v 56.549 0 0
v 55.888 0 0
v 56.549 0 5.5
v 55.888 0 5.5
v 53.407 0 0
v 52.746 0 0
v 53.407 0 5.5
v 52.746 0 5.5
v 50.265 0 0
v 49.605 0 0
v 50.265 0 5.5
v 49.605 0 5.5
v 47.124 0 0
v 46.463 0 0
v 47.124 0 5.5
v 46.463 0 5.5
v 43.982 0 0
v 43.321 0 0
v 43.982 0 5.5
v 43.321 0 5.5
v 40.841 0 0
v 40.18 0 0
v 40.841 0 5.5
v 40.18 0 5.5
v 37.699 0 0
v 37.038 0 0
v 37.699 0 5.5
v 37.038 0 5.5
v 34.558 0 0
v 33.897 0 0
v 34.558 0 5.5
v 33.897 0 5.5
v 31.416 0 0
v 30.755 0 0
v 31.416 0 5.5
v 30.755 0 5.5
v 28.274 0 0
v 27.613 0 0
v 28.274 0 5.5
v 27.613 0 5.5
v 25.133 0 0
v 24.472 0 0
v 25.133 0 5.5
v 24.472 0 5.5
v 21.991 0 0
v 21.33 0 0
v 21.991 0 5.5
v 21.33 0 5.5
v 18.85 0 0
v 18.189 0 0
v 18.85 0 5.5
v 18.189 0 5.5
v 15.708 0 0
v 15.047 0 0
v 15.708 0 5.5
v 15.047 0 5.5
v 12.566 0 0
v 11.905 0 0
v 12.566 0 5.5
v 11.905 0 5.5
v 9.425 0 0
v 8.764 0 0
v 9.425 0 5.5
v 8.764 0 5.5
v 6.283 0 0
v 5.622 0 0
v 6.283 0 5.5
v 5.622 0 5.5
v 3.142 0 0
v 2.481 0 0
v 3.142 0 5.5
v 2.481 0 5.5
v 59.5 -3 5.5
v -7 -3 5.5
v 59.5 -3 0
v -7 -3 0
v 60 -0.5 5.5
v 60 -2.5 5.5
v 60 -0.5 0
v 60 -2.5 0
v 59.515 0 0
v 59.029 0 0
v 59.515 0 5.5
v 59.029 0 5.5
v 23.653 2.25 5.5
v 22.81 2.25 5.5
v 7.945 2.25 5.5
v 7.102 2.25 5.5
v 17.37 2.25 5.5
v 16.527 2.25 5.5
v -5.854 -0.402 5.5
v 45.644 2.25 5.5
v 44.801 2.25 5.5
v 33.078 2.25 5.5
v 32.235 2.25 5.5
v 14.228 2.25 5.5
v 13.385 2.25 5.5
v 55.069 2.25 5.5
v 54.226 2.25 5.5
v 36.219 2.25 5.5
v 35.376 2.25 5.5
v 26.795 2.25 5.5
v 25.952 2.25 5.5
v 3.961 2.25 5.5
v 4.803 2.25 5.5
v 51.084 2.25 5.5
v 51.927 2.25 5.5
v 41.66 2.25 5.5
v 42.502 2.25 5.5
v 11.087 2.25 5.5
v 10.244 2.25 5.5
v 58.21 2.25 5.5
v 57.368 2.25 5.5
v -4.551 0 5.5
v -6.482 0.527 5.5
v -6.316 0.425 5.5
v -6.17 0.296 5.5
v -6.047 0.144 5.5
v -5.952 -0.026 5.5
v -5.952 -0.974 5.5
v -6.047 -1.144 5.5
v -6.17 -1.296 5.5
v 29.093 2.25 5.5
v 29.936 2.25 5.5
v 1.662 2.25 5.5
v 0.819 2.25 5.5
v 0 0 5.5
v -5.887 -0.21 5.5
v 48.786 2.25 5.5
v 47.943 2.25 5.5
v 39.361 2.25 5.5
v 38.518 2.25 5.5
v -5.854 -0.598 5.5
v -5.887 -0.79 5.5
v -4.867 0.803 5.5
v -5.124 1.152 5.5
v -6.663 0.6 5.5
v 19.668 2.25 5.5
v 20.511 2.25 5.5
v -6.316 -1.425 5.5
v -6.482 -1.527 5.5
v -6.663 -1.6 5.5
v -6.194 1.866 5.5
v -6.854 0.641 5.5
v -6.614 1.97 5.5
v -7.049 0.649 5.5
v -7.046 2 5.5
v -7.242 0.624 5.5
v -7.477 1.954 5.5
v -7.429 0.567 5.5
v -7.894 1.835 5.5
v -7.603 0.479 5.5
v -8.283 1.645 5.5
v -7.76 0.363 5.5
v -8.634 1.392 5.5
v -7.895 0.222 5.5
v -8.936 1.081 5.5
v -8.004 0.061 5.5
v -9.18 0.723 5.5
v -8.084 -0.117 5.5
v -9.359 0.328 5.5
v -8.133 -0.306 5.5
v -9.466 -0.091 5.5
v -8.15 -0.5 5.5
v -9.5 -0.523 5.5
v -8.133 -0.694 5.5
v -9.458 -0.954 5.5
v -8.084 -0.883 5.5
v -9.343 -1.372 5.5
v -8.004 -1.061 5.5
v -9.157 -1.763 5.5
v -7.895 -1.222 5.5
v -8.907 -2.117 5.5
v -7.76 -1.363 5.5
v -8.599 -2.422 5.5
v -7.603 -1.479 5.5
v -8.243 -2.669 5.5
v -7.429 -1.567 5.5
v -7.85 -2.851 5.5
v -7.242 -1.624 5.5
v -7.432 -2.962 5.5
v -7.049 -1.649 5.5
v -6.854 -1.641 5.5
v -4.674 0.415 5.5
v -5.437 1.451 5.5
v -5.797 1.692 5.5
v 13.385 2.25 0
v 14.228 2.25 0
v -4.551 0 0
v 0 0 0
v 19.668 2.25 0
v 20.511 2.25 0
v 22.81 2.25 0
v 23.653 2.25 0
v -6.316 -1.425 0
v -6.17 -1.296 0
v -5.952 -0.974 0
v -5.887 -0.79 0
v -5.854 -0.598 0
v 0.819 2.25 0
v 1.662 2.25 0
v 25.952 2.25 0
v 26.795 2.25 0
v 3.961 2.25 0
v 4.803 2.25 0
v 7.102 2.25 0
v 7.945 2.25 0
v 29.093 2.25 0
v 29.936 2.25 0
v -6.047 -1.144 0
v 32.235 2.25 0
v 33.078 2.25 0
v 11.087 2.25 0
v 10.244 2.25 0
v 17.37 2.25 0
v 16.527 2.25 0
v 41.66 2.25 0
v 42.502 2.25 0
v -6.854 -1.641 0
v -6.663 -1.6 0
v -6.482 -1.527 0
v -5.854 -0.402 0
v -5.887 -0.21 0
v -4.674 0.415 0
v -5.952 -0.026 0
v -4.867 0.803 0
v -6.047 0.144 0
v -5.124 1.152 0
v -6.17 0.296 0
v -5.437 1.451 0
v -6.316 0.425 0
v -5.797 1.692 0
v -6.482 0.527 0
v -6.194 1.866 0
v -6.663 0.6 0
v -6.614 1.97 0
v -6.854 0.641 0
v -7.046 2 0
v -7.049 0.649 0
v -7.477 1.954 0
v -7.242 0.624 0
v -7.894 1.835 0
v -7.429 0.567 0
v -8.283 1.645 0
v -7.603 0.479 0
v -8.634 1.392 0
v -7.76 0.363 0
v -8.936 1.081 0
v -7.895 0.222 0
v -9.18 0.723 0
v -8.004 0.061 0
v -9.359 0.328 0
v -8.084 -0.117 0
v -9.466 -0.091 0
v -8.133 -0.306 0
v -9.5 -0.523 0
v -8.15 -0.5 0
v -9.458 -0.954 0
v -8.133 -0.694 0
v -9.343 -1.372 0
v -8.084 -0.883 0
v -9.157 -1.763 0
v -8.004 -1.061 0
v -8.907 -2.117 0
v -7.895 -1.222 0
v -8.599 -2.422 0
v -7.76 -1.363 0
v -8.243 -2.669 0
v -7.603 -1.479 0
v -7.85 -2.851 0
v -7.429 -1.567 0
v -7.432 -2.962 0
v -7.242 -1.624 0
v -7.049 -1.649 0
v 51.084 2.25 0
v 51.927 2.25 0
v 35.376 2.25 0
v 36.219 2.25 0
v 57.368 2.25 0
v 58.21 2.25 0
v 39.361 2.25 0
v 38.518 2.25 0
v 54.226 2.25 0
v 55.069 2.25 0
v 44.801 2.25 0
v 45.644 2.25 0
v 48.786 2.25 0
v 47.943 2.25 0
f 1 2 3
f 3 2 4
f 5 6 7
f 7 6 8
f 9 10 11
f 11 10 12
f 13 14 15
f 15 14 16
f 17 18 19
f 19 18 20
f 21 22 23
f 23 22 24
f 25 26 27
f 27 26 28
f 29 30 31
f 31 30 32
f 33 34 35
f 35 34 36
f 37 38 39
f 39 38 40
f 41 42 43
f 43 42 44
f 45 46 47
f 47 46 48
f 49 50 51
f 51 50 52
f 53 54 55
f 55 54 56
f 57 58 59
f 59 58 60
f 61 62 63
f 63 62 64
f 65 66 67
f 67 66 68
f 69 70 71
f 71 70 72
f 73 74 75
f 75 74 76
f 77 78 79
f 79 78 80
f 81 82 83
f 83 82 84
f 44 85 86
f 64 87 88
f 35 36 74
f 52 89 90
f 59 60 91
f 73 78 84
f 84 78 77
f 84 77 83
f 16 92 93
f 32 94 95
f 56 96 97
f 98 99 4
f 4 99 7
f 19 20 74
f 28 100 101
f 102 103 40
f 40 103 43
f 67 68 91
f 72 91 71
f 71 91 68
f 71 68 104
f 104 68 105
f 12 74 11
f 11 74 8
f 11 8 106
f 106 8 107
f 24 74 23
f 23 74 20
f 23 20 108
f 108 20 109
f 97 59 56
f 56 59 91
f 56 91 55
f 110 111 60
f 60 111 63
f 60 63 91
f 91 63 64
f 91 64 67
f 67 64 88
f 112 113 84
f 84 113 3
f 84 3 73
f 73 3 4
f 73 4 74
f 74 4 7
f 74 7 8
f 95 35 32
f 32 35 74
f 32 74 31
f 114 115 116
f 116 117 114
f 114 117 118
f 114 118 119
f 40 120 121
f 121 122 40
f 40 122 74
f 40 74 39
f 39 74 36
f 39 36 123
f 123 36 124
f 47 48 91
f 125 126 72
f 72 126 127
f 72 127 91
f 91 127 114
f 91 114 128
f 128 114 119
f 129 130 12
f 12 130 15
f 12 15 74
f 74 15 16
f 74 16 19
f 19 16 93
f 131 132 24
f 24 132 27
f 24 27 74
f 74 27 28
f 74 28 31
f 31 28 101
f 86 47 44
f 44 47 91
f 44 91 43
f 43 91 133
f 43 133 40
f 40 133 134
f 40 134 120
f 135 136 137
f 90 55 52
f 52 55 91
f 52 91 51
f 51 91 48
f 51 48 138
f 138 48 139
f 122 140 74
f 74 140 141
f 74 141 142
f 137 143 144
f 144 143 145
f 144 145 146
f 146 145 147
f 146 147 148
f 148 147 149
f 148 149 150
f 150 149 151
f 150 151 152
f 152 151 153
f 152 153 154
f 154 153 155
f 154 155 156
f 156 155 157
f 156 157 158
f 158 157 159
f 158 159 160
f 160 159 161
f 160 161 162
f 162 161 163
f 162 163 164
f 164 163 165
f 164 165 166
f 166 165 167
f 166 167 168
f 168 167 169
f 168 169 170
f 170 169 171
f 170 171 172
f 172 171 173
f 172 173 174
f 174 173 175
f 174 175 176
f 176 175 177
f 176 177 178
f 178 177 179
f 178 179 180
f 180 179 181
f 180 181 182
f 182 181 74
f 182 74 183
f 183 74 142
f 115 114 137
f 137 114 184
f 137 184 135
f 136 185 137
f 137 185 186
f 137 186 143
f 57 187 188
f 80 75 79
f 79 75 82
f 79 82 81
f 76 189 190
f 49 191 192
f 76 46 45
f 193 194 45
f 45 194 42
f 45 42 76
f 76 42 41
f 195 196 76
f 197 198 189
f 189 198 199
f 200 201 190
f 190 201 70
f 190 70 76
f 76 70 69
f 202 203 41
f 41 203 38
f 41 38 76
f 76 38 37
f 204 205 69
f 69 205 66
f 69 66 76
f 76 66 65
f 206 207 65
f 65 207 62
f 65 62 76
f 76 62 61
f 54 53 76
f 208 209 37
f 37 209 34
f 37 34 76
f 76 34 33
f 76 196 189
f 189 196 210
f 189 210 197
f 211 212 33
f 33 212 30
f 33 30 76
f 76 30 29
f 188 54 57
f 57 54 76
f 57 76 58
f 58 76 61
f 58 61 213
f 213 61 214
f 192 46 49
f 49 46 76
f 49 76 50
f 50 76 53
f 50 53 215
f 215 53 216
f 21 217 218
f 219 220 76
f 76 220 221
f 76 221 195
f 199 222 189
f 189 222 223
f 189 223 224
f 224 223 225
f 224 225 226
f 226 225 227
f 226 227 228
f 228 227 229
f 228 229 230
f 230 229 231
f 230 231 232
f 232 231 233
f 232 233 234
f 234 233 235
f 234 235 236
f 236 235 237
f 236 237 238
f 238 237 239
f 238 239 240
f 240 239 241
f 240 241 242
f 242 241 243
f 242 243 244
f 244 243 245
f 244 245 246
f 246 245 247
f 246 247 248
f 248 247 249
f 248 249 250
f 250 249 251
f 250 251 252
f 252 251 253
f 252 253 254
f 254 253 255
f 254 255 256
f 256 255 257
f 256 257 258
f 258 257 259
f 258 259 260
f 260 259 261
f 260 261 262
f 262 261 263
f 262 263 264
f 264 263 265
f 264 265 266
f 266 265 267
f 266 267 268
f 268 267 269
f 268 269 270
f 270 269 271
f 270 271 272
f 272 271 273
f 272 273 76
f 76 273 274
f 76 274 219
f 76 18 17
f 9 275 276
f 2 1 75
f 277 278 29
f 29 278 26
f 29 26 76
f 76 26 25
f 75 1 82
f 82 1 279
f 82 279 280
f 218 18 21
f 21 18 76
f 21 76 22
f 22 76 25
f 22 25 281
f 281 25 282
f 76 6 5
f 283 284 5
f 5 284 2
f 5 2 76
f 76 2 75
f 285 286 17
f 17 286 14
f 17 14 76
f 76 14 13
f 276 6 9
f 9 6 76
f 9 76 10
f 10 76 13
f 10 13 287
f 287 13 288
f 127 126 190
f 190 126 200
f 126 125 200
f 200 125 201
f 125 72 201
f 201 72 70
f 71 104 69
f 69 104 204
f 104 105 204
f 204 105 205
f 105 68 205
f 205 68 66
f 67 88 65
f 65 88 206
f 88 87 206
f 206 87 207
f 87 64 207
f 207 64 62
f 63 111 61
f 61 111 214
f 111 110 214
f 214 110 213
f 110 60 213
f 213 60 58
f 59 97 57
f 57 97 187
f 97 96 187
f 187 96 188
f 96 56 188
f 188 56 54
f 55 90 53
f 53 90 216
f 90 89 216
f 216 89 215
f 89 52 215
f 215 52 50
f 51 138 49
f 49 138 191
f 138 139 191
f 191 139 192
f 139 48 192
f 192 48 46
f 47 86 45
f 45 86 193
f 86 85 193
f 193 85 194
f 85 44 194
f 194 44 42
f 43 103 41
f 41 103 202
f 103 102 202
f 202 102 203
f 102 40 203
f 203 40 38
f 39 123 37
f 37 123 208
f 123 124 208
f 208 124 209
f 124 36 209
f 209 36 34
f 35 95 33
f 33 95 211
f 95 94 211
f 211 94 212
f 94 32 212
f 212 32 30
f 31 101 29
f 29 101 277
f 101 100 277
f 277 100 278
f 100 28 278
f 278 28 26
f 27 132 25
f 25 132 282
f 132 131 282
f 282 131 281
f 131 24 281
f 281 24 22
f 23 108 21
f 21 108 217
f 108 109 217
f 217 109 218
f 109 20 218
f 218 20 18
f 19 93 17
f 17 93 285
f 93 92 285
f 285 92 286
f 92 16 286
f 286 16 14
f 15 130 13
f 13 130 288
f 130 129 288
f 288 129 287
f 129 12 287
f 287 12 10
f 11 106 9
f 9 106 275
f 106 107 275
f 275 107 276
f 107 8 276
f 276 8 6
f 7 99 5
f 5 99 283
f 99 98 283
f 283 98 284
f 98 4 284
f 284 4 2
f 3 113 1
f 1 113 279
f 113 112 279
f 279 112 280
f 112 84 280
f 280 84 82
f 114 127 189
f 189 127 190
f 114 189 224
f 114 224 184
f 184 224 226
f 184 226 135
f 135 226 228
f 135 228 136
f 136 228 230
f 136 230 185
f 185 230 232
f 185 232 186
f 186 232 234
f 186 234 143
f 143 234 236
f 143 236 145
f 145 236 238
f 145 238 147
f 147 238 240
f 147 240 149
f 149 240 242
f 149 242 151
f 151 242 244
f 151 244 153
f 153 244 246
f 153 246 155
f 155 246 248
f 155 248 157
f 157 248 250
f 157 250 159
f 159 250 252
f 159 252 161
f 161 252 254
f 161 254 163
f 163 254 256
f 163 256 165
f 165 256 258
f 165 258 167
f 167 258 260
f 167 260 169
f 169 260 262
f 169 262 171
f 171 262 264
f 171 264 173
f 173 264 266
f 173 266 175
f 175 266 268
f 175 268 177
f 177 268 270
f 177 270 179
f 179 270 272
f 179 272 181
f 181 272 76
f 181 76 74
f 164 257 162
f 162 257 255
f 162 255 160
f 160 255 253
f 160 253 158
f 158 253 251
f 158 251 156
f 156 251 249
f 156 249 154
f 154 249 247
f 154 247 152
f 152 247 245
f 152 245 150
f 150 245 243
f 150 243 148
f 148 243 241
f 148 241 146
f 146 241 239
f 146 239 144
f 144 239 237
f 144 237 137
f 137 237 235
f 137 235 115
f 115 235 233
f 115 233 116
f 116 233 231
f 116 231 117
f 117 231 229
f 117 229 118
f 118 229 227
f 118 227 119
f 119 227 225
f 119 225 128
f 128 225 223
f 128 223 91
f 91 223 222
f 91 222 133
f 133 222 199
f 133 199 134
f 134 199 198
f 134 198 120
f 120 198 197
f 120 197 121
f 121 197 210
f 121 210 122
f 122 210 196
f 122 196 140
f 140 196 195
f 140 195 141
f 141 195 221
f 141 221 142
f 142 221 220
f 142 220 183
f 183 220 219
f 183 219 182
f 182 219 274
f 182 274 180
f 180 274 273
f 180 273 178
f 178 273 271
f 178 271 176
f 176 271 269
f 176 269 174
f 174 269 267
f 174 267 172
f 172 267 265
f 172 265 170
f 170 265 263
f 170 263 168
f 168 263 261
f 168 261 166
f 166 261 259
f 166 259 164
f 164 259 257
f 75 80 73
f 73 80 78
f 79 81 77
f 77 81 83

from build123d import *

# Parameters (mm, degrees)
SKETCH_1_W             = 60
SKETCH_1_H             = 3
EXTRUDE_1_DEPTH        = 5.5
EXTRUDE_2_DEPTH        = 5.5
PATTERN_LINEAR_1_COUNT = 19
PATTERN_LINEAR_1_PITCH = 3.141592654
SKETCH_3_R             = 1.15
EXTRUDE_1_2_DEPTH      = 5.5
CUT_EXTRUDE_2_DEPTH    = 6


with BuildPart() as part:
    # 草图1 → Extrude 1 (new body)
    with BuildSketch(Plane.XY):
        with Locations((30, -1.5)):
            Rectangle(SKETCH_1_W, SKETCH_1_H)
    extrude(amount=EXTRUDE_1_DEPTH)

    # 草图2 → 拉伸2 (add)
    with BuildSketch(Plane.XY.offset(5.5)):
        Polygon((0, 0), (0.818933027, 2.25), (1.661788885, 2.25), (2.480721912, 0), align=None)
    extrude_2 = extrude(amount=-EXTRUDE_2_DEPTH)

    # 阵列(线性)1: 拉伸2 ×19
    with Locations(*[(i * PATTERN_LINEAR_1_PITCH, 0, 0) for i in range(1, PATTERN_LINEAR_1_COUNT)]):
        add(extrude_2)

    # 草图3 → Extrude 1 2 (add)
    with BuildSketch(Plane(origin=(0, 0, 0), x_dir=(-1, 0, 0), z_dir=(0, 0, -1))):
        with BuildLine():
            Line((7, -3), (0, -3))
            Line((0, -3), (0, 0))
            Line((0, 0), (4.550510054, 0))
            ThreePointArc((4.550510054, 0), (8.93649166, 1.081138846), (7, -3))
        make_face()
        with Locations((7, -0.5)):
            Circle(SKETCH_3_R, mode=Mode.SUBTRACT)
    extrude(amount=-EXTRUDE_1_2_DEPTH)

    # 草图5 → 切除-拉伸2 (cut)
    with BuildSketch(Plane(origin=(0, 0, 0), x_dir=(-1, 0, 0), z_dir=(0, 0, -1))):
        Polygon((-59.514694839, 0), (-60, -0.5), (-60, 0), align=None)
        Polygon((-60, -3), (-60, -2.5), (-59.5, -3), align=None)
    extrude(amount=-CUT_EXTRUDE_2_DEPTH, mode=Mode.SUBTRACT)


solid = part.part
